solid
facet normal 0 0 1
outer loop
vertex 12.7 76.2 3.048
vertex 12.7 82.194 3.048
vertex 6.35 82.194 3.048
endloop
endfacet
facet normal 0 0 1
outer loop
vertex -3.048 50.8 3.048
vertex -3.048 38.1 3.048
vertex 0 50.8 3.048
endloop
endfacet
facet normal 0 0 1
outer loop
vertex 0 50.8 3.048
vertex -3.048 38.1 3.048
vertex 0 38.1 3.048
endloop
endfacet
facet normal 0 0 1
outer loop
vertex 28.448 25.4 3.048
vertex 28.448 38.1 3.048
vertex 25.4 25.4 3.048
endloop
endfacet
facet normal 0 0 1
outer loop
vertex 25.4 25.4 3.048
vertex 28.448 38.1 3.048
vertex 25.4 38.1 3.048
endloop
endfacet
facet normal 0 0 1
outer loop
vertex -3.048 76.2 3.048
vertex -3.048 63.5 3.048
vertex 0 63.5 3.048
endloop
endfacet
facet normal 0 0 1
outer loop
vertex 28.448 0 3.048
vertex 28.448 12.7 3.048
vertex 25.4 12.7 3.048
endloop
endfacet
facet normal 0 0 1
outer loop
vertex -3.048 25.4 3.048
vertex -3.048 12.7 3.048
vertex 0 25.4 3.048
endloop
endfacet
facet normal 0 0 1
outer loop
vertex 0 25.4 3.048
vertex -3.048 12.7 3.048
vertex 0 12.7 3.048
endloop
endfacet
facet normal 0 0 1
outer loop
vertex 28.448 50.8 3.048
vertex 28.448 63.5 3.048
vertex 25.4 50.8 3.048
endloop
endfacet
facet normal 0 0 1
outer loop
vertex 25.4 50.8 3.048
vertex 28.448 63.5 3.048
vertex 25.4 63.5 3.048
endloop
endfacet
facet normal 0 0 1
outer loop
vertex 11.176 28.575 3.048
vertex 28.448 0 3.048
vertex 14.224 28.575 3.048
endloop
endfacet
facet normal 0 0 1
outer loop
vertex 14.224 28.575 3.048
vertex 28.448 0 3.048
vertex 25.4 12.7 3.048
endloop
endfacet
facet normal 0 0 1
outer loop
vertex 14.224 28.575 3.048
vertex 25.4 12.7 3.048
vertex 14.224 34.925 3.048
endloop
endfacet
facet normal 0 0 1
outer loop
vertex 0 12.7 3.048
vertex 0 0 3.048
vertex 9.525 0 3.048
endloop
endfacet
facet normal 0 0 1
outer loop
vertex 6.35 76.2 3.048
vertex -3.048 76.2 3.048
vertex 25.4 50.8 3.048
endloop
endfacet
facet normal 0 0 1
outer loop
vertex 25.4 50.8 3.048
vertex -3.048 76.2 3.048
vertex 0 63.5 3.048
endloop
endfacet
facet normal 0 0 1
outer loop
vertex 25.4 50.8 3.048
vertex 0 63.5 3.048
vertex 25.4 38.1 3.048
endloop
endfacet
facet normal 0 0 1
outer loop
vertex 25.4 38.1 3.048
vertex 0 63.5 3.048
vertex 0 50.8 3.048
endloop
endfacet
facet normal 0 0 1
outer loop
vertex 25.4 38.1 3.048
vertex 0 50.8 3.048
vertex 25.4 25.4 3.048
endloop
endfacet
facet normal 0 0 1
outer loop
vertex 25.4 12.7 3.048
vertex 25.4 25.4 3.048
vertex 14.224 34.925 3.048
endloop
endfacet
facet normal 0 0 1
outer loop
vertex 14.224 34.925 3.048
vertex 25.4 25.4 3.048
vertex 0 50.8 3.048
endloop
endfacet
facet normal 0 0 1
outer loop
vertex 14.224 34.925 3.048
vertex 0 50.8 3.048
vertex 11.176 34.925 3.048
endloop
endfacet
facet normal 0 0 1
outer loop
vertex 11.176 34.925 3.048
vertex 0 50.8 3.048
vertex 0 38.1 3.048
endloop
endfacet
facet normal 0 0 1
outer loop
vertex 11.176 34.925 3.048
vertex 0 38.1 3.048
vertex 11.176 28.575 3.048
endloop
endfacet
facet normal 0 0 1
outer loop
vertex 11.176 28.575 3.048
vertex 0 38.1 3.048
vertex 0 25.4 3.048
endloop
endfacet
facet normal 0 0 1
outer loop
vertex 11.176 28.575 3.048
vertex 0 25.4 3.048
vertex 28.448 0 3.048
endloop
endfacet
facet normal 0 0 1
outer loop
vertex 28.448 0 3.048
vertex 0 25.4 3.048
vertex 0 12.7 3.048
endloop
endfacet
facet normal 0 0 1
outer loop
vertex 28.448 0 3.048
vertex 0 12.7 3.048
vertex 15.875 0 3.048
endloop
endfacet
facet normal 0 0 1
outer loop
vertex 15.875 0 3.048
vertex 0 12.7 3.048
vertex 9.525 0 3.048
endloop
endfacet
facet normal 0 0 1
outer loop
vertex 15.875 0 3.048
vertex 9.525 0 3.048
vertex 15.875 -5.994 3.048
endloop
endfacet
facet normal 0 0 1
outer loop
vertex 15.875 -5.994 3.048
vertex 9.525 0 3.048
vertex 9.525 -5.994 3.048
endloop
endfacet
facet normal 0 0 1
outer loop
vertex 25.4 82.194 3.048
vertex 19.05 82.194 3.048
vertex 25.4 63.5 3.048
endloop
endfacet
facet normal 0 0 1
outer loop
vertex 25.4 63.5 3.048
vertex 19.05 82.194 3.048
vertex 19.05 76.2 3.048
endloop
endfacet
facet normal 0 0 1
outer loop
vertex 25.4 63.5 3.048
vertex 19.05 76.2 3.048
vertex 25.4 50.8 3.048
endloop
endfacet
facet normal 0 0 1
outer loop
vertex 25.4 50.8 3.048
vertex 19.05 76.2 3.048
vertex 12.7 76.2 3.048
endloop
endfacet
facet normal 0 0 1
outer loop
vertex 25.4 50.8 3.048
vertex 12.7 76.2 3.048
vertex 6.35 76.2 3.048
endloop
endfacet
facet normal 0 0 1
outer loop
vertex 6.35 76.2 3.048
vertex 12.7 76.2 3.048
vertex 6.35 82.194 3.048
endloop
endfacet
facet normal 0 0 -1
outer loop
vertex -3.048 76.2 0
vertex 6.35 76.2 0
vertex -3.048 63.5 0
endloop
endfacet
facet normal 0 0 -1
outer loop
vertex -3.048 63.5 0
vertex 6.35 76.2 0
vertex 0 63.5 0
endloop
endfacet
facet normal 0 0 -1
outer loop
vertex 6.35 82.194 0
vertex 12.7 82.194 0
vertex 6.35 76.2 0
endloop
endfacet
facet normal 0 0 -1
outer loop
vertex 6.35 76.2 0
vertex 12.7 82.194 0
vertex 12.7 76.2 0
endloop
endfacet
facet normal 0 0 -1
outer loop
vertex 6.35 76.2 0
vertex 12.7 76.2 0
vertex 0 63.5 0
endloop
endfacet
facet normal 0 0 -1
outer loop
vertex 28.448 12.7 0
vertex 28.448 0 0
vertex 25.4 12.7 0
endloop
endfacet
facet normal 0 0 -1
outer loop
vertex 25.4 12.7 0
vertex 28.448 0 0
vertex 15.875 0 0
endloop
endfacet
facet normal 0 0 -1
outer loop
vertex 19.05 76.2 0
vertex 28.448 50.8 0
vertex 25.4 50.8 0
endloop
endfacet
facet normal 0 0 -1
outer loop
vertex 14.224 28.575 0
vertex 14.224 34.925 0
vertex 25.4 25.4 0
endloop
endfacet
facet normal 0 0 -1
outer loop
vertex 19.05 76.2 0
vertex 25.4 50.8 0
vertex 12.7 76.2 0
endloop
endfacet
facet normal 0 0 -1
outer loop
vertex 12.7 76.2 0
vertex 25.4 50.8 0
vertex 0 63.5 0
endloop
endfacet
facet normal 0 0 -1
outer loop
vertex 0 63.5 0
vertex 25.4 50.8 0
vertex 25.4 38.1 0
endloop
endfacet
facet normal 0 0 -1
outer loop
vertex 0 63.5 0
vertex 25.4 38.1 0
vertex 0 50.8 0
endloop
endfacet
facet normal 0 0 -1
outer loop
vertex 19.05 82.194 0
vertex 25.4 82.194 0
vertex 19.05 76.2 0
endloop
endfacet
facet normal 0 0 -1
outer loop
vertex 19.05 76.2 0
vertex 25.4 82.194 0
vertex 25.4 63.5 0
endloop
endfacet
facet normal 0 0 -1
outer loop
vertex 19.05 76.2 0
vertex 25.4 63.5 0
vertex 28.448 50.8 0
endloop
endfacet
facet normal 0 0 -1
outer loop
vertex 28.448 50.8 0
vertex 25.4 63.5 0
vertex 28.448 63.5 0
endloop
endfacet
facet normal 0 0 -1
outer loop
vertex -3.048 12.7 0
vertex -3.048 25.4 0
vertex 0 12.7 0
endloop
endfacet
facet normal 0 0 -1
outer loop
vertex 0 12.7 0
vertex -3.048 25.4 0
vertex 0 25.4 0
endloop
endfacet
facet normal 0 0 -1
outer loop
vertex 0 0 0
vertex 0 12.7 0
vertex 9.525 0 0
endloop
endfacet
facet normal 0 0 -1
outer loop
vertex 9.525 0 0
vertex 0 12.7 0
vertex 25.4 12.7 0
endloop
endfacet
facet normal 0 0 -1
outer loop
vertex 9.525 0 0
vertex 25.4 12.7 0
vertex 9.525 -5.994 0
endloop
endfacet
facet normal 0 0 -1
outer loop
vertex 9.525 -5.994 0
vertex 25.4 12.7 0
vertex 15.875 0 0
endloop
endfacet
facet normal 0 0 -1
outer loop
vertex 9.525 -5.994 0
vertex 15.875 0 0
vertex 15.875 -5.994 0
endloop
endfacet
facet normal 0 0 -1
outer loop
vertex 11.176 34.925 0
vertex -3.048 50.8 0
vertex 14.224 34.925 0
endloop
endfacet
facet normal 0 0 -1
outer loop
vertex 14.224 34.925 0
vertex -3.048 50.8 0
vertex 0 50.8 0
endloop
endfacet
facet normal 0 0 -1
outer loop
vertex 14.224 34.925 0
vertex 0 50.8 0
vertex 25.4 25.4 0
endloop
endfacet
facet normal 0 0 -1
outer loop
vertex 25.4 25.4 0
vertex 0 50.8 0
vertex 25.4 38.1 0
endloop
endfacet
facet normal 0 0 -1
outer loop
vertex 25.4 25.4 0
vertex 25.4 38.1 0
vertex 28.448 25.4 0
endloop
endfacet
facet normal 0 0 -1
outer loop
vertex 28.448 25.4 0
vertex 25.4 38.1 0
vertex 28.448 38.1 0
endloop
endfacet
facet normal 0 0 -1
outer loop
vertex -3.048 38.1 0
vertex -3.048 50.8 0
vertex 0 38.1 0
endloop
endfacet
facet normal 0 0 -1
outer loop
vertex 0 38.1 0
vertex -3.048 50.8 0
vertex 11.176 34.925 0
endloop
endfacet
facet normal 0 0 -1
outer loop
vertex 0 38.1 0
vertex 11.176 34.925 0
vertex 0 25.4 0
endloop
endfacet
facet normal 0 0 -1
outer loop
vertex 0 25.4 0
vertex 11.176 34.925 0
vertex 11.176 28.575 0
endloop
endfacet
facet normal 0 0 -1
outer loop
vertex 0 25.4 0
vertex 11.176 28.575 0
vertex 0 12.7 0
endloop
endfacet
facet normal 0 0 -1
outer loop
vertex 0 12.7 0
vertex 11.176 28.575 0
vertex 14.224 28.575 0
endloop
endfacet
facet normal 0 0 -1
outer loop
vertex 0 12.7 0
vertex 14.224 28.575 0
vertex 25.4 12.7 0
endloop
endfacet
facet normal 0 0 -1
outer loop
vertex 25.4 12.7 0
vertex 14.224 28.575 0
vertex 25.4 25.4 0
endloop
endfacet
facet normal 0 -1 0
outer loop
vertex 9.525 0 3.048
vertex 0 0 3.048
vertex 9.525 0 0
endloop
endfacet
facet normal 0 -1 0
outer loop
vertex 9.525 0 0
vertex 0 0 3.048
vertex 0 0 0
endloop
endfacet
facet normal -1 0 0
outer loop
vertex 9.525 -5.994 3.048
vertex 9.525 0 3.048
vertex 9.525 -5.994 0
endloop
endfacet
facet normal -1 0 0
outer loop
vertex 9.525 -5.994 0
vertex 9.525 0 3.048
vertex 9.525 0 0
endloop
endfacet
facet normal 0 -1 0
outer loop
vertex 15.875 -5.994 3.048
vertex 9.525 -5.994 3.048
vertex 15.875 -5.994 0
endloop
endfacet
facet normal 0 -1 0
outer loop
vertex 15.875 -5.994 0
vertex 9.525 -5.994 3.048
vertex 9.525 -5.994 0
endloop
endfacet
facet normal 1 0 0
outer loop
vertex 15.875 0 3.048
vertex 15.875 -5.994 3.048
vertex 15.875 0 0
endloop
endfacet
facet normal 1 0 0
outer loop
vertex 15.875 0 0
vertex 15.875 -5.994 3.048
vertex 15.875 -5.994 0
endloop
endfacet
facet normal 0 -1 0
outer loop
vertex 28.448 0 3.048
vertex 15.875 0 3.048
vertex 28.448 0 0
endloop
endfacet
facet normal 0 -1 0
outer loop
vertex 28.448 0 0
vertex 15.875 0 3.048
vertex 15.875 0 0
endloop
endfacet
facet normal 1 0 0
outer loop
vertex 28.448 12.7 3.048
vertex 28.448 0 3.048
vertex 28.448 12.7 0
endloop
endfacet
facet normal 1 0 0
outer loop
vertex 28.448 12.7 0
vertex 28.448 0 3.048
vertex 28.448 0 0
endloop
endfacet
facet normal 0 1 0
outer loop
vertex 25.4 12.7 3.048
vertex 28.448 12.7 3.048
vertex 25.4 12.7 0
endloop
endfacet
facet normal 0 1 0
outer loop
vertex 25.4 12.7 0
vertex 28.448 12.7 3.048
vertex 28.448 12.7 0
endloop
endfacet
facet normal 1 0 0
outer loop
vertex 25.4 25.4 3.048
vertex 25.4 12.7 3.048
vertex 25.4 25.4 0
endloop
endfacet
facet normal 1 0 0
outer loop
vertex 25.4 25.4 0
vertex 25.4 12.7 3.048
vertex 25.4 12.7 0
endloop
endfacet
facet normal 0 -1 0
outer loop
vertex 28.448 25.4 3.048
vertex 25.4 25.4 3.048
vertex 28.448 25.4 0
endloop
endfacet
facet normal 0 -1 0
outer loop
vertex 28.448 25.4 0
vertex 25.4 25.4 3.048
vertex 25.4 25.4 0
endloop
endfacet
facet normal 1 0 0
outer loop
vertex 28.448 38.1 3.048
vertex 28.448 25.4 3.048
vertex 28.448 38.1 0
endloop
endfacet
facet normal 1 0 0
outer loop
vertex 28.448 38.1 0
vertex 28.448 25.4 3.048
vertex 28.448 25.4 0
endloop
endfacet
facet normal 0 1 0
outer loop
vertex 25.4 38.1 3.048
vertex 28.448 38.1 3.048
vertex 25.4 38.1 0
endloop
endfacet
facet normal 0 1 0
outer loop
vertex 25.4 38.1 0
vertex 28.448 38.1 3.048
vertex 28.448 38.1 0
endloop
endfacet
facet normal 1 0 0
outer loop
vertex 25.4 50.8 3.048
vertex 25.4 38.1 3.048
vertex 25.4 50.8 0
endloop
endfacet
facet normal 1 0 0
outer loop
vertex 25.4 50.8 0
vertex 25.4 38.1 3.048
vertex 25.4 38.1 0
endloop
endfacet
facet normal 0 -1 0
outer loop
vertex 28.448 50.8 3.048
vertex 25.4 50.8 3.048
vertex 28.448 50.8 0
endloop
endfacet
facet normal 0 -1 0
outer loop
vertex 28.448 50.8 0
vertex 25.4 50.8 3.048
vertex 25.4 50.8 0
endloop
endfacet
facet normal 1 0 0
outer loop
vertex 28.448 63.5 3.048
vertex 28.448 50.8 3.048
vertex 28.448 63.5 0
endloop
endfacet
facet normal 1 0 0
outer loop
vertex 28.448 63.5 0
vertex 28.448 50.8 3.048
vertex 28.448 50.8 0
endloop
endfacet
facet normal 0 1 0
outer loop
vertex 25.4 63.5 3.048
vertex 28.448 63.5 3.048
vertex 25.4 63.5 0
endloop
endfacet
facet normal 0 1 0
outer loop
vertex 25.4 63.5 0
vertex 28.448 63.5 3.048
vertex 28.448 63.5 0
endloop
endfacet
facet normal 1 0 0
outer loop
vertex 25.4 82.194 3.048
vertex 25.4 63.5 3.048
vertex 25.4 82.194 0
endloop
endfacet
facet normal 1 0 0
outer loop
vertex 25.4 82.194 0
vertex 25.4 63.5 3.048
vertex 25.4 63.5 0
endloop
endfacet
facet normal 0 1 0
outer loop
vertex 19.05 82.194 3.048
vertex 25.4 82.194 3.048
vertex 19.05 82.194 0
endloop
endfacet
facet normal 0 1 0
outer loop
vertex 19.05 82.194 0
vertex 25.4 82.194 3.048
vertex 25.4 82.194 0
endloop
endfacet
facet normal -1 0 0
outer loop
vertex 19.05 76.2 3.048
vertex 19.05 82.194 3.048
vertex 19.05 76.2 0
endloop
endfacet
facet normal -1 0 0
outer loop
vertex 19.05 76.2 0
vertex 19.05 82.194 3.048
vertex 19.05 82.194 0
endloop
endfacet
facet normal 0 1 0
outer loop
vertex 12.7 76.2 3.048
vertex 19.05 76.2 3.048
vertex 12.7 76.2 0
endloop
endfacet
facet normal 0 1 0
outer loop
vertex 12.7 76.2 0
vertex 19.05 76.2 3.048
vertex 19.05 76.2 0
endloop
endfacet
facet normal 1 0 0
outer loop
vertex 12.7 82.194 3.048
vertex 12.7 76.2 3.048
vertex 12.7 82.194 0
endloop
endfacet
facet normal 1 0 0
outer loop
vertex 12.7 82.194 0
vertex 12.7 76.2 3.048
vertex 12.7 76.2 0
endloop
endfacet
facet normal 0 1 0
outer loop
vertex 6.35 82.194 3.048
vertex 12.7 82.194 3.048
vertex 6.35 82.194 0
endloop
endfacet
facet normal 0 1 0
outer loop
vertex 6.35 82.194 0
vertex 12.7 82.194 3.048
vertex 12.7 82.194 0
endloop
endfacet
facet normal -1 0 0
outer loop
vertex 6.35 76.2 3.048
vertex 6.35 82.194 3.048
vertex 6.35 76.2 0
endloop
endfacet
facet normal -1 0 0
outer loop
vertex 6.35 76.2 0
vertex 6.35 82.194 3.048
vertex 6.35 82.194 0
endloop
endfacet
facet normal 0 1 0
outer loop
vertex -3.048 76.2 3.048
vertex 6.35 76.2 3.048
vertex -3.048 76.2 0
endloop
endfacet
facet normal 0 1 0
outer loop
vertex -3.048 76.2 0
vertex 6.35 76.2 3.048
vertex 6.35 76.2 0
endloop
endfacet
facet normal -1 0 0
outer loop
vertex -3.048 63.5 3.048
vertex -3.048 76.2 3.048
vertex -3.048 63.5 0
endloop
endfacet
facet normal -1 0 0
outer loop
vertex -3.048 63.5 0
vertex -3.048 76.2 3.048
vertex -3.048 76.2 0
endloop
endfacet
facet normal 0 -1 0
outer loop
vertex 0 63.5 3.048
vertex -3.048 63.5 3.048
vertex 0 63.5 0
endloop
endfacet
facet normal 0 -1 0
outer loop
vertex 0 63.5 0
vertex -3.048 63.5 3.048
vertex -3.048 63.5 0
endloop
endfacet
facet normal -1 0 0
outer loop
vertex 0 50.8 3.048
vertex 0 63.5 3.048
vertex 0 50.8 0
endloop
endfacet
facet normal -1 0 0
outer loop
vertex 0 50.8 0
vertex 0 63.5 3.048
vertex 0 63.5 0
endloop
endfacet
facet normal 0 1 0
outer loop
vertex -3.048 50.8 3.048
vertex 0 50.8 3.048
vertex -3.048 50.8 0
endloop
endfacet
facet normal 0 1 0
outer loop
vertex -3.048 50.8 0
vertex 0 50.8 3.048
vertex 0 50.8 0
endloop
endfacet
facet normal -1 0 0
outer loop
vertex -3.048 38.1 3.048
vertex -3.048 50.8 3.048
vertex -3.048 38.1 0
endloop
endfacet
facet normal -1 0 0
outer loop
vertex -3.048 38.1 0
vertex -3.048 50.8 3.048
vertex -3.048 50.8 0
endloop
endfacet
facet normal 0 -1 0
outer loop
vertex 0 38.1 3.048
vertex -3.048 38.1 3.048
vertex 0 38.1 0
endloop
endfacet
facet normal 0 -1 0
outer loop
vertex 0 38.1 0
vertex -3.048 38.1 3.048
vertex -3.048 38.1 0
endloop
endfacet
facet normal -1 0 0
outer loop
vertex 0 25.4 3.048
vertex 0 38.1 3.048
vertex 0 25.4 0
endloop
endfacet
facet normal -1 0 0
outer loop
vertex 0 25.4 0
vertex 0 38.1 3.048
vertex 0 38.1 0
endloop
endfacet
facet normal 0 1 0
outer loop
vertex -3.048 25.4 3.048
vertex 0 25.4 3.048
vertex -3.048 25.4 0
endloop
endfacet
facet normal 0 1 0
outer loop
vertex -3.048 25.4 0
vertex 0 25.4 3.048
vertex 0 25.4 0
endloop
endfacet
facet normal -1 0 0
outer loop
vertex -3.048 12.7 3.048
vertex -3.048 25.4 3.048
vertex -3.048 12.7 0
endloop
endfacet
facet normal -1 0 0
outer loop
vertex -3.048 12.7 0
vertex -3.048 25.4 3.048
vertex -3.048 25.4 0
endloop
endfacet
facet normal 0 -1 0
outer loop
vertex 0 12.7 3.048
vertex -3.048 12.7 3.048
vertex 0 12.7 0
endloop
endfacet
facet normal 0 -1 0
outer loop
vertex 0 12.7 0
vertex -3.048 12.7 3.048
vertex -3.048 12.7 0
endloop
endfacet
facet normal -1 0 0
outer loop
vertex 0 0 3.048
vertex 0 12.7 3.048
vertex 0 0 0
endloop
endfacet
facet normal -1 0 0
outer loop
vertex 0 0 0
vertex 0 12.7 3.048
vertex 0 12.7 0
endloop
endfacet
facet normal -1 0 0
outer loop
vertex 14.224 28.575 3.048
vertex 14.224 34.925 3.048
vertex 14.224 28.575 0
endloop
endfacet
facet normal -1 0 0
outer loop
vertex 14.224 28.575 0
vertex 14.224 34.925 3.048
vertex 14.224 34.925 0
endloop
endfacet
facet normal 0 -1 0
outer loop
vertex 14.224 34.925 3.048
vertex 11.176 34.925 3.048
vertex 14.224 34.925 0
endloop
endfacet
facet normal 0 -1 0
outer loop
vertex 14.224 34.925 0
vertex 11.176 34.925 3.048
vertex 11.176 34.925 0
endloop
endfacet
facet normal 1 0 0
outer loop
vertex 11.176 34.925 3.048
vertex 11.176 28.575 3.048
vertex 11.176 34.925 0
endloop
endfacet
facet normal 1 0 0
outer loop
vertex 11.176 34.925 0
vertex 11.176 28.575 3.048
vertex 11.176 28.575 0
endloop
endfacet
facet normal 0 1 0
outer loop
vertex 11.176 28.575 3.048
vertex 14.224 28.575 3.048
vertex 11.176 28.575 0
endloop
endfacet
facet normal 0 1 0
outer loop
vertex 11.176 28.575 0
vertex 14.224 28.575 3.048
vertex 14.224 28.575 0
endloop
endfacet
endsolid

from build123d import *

# Parameters (mm, degrees)
SKETCH1_W           = 3.048
SKETCH1_H           = 6.35
BOSS_EXTRUDE1_DEPTH = 3.048


with BuildPart() as part:
    # Sketch1 → Boss-Extrude1 (new body)
    with BuildSketch(Plane.XY):
        Polygon((0, 0), (0, 12.7), (-3.048, 12.7), (-3.048, 25.4), (0, 25.4), (0, 38.1), (-3.048, 38.1), (-3.048, 50.8), (0, 50.8), (0, 63.5), (-3.048, 63.5), (-3.048, 76.2), (6.35, 76.2), (6.35, 82.1944), (12.7, 82.1944), (12.7, 76.2), (19.05, 76.2), (19.05, 82.1944), (25.4, 82.1944), (25.4, 63.5), (28.448, 63.5), (28.448, 50.8), (25.4, 50.8), (25.4, 38.1), (28.448, 38.1), (28.448, 25.4), (25.4, 25.4), (25.4, 12.7), (28.448, 12.7), (28.448, 0), (15.875, 0), (15.875, -5.9944), (9.525, -5.9944), (9.525, 0), align=None)
        with Locations((12.7, 31.75)):
            Rectangle(SKETCH1_W, SKETCH1_H, mode=Mode.SUBTRACT)
    extrude(amount=BOSS_EXTRUDE1_DEPTH)


solid = part.part
